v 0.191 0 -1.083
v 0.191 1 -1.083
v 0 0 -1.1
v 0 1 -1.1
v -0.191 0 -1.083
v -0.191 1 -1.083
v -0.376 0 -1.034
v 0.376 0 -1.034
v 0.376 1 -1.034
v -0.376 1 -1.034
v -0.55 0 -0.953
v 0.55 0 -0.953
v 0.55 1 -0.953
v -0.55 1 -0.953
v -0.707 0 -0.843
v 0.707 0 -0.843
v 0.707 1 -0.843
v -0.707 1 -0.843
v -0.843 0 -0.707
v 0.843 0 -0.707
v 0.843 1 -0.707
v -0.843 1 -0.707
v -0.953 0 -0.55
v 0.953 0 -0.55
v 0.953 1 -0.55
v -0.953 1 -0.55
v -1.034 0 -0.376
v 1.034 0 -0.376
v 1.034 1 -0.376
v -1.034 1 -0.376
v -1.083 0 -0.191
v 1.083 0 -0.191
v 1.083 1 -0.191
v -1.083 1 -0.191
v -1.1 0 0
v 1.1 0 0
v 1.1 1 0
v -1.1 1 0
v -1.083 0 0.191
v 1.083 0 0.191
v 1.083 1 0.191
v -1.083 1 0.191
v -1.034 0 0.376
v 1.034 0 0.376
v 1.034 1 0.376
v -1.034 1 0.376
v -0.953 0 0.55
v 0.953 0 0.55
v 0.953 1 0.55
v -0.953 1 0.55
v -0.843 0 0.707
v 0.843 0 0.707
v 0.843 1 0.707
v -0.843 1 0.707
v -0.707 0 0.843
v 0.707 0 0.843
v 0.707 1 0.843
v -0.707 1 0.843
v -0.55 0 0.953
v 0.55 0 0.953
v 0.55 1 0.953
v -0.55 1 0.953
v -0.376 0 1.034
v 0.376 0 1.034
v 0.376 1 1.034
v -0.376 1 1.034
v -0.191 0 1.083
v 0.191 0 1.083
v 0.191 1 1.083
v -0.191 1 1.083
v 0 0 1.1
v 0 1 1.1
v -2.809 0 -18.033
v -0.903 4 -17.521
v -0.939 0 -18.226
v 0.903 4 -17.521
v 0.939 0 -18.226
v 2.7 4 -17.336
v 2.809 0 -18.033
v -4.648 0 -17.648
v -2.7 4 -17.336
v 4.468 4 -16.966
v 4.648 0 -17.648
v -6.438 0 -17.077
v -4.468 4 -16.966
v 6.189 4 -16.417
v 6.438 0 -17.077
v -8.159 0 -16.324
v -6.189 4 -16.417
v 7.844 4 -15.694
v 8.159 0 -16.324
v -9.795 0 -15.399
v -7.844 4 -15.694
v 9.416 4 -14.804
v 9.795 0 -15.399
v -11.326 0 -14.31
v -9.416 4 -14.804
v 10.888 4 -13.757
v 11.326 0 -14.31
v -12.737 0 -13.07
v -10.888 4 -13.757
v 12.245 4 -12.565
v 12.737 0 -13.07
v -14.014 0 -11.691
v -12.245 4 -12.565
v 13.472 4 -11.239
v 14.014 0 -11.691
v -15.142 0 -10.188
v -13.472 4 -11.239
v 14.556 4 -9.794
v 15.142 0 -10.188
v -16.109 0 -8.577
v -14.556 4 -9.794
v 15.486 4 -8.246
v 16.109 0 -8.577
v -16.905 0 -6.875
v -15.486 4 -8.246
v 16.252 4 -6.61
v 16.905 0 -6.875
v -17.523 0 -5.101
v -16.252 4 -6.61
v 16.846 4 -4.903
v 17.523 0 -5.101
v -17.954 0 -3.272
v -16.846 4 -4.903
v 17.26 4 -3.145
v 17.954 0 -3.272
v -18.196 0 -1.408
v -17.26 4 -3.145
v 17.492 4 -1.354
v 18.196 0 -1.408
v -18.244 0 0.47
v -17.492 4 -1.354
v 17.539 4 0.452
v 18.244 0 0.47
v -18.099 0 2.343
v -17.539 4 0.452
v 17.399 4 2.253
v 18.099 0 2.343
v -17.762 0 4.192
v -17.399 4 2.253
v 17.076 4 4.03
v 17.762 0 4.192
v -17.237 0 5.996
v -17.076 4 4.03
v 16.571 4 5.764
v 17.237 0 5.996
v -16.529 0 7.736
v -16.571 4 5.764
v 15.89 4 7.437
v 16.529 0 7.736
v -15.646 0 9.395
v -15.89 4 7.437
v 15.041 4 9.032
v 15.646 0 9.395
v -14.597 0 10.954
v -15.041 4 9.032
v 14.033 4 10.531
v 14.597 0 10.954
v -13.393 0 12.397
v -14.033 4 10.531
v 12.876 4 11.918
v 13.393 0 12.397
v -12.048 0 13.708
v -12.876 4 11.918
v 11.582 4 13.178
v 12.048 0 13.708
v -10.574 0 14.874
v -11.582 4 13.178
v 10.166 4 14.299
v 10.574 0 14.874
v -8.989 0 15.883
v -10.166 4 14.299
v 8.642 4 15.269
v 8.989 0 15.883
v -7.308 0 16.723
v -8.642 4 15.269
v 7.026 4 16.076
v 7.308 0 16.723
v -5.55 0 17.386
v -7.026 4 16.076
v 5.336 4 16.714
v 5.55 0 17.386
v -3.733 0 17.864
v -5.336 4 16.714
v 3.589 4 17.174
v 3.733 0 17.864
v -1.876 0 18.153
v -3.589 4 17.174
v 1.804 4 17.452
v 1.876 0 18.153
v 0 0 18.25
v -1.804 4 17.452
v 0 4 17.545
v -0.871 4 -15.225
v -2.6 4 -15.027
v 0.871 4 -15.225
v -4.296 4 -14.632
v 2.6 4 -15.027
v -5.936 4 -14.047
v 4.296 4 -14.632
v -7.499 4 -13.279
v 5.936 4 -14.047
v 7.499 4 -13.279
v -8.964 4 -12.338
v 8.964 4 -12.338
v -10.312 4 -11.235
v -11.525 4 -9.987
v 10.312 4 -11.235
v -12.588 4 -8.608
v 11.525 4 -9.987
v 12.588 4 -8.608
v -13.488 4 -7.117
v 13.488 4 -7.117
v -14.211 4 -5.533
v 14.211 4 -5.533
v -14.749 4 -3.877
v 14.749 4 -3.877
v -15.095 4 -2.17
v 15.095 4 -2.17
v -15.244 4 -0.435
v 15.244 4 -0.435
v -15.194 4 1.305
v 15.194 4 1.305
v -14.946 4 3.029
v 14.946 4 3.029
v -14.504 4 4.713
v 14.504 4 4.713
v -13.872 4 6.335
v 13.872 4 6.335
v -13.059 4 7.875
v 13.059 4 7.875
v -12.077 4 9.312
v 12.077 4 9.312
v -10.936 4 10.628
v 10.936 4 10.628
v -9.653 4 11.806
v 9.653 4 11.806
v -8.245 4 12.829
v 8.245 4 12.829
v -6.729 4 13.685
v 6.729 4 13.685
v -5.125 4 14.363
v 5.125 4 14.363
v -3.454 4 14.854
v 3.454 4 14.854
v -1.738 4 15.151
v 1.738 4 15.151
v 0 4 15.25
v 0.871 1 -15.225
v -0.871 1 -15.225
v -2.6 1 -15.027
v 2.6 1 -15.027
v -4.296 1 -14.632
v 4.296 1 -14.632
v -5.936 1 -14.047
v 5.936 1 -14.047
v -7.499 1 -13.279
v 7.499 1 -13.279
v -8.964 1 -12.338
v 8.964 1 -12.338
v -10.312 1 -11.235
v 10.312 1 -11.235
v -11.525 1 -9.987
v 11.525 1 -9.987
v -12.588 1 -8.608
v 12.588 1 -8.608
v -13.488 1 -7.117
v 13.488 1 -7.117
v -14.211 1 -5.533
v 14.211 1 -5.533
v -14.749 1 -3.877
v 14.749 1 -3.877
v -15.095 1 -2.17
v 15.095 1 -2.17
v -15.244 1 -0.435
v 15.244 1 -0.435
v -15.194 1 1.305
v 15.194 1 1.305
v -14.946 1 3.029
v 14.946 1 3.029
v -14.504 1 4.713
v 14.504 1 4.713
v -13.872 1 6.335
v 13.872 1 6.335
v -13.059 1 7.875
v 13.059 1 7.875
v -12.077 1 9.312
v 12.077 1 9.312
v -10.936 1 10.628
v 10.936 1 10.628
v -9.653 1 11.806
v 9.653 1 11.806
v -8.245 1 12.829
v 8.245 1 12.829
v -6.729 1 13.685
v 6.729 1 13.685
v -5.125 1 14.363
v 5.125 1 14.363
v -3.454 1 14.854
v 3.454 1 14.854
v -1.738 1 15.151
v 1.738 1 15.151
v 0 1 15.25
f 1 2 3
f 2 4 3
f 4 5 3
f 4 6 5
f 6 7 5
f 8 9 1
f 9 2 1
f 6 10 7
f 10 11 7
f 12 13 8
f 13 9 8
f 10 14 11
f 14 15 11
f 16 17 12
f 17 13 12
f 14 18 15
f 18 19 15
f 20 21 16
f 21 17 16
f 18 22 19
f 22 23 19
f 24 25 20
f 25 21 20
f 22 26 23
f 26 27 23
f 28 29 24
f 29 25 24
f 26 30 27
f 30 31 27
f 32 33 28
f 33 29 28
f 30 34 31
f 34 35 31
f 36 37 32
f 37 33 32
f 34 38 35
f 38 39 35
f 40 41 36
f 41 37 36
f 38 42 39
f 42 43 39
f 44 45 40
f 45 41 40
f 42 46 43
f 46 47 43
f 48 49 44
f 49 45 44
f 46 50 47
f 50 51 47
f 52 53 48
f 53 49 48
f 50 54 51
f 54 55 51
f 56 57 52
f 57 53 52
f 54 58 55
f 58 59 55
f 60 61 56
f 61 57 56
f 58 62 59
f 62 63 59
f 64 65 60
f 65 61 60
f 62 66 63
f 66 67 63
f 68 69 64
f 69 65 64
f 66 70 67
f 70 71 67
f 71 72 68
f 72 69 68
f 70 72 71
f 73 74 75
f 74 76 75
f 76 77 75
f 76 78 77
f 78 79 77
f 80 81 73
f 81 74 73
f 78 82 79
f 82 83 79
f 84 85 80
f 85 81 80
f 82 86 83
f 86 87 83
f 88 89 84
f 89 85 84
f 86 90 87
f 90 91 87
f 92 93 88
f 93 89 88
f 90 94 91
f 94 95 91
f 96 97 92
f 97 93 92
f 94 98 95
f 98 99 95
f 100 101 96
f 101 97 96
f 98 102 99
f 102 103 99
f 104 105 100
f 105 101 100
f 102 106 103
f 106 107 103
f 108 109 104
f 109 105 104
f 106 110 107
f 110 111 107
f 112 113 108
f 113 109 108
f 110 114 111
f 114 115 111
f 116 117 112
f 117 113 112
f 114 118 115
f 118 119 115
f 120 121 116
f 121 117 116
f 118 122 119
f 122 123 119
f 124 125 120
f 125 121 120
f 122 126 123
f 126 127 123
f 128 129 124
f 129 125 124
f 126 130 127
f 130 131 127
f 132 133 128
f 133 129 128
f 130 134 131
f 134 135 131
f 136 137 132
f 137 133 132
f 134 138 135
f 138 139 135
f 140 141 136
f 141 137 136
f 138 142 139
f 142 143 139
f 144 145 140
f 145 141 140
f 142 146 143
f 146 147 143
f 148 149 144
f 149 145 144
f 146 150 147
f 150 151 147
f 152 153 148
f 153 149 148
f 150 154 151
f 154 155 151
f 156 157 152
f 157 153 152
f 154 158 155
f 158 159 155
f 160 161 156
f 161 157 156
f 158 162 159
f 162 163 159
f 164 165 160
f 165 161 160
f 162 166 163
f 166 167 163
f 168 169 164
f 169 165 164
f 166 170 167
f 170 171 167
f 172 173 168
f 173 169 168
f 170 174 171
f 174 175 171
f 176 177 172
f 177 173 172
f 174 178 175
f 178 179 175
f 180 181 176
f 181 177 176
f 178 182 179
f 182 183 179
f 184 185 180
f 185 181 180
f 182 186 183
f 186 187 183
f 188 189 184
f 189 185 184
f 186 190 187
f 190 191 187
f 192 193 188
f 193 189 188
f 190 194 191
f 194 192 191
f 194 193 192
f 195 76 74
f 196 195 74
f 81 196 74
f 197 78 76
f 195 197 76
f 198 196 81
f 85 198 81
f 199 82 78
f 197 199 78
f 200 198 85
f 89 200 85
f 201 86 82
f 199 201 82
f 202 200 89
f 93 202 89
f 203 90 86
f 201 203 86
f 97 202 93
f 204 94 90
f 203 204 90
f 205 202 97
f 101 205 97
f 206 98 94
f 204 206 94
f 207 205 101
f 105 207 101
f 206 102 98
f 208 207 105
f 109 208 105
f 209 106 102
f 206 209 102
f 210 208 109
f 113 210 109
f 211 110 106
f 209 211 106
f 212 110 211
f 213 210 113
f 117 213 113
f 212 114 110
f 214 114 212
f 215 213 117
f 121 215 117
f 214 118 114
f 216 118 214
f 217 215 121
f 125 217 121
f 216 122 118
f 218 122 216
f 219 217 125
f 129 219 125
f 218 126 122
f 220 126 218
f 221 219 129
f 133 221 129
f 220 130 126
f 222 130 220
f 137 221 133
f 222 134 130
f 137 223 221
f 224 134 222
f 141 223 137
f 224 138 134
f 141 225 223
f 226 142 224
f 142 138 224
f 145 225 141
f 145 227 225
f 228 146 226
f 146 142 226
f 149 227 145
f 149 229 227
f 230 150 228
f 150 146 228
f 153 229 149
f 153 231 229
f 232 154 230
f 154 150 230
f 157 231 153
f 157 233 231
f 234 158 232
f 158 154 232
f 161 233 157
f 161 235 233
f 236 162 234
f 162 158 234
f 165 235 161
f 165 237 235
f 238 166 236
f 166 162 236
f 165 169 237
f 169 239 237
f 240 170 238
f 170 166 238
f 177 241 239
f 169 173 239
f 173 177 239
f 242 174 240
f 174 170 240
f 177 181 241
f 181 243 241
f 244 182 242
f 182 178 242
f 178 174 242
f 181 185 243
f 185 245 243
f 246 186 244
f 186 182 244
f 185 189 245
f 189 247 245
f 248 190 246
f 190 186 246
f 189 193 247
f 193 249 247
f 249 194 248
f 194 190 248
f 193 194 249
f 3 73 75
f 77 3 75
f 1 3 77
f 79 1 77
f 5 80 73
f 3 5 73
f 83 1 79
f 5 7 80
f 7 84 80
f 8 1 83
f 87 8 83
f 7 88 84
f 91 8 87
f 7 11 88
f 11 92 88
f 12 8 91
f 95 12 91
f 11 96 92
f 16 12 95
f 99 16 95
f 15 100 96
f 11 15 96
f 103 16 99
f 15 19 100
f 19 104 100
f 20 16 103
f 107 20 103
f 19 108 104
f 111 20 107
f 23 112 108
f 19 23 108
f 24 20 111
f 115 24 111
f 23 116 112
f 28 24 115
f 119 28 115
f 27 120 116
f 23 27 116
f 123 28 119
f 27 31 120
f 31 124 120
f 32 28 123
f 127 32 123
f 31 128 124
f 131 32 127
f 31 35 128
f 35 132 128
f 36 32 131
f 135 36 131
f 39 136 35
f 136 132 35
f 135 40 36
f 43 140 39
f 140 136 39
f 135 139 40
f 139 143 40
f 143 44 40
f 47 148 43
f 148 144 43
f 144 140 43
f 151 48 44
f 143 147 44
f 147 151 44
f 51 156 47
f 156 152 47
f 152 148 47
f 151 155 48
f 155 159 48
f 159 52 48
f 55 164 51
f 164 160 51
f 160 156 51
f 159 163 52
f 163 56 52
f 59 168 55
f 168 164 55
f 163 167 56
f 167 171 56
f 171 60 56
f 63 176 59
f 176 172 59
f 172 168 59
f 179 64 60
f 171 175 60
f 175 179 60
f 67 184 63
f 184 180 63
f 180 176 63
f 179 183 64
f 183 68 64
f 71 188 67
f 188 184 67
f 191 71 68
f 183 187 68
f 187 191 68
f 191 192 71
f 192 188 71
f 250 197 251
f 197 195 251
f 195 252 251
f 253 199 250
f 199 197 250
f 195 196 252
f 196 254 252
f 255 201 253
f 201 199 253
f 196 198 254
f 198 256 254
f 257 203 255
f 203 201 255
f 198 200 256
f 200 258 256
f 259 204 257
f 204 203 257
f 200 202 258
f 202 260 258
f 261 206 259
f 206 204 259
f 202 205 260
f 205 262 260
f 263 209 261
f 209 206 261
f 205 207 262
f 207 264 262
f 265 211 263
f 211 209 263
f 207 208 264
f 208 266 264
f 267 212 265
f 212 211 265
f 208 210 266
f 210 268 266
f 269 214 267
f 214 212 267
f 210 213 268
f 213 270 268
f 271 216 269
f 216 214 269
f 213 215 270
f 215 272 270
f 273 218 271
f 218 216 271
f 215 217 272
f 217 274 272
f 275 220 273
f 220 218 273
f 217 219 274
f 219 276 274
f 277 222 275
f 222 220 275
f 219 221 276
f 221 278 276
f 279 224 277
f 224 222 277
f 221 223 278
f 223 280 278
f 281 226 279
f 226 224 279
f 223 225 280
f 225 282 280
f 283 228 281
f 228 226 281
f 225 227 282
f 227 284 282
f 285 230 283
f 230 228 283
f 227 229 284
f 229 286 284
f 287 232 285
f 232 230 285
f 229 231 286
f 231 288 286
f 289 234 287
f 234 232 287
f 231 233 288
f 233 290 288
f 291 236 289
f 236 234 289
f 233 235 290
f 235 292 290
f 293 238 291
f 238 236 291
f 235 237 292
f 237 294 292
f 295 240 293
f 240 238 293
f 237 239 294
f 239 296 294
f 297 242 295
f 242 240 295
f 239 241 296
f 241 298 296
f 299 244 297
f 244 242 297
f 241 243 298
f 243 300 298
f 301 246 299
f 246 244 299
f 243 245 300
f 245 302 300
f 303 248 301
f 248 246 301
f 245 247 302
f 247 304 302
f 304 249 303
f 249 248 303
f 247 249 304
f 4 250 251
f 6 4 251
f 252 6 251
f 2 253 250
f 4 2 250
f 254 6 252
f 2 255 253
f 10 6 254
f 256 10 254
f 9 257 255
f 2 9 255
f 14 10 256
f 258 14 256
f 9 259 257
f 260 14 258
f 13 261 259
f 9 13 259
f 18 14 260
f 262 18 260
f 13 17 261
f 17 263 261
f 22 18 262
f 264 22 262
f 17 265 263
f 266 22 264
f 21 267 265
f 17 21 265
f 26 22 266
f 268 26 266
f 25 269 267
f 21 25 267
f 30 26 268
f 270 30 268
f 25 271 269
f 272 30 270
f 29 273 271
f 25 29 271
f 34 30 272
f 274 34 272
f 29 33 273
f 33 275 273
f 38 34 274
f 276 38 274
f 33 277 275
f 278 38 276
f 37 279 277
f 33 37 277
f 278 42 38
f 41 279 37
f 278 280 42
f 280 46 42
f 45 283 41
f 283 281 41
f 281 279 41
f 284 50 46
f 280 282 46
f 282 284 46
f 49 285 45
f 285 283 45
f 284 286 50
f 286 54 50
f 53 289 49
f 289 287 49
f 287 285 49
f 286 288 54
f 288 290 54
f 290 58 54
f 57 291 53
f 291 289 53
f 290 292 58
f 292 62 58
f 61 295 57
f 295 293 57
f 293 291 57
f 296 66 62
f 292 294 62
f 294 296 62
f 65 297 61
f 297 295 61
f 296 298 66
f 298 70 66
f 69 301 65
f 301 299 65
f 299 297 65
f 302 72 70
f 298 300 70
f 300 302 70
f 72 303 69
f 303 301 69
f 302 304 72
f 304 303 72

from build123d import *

# Parameters (mm, degrees)
SKETCH1_R           = 18.25
BOSS_EXTRUDE1_DEPTH = 4
BOSS_EXTRUDE1_TAPER = 10
CUT_EXTRUDE2_START  = 4
SKETCH1_5_R         = 1.1
CUT_EXTRUDE2_DEPTH  = 4
CUT_EXTRUDE3_START  = 4
SKETCH1_6_R         = 15.25
CUT_EXTRUDE3_DEPTH  = 3


with BuildPart() as part:
    # Sketch1 → Boss-Extrude1 (new body)
    with BuildSketch(Plane(origin=(0, 0, 0), x_dir=(1, 0, 0), z_dir=(0, 1, 0))):
        Circle(SKETCH1_R)
    extrude(amount=BOSS_EXTRUDE1_DEPTH, taper=BOSS_EXTRUDE1_TAPER)

    # Sketch1<5> → Cut-Extrude2 (cut)
    with BuildSketch(Plane(origin=(0, 0, 0), x_dir=(1, 0, 0), z_dir=(0, 1, 0)).offset(CUT_EXTRUDE2_START)):
        with Locations(Location((0, 0, 0), (0, 0, 270))):
            Circle(SKETCH1_5_R)
    extrude(amount=-CUT_EXTRUDE2_DEPTH, mode=Mode.SUBTRACT)

    # Sketch1<6> → Cut-Extrude3 (cut)
    with BuildSketch(Plane(origin=(0, 0, 0), x_dir=(1, 0, 0), z_dir=(0, 1, 0)).offset(CUT_EXTRUDE3_START)):
        with Locations(Location((0, 0, 0), (0, 0, 270))):
            Circle(SKETCH1_6_R)
    extrude(amount=-CUT_EXTRUDE3_DEPTH, mode=Mode.SUBTRACT)


solid = part.part
